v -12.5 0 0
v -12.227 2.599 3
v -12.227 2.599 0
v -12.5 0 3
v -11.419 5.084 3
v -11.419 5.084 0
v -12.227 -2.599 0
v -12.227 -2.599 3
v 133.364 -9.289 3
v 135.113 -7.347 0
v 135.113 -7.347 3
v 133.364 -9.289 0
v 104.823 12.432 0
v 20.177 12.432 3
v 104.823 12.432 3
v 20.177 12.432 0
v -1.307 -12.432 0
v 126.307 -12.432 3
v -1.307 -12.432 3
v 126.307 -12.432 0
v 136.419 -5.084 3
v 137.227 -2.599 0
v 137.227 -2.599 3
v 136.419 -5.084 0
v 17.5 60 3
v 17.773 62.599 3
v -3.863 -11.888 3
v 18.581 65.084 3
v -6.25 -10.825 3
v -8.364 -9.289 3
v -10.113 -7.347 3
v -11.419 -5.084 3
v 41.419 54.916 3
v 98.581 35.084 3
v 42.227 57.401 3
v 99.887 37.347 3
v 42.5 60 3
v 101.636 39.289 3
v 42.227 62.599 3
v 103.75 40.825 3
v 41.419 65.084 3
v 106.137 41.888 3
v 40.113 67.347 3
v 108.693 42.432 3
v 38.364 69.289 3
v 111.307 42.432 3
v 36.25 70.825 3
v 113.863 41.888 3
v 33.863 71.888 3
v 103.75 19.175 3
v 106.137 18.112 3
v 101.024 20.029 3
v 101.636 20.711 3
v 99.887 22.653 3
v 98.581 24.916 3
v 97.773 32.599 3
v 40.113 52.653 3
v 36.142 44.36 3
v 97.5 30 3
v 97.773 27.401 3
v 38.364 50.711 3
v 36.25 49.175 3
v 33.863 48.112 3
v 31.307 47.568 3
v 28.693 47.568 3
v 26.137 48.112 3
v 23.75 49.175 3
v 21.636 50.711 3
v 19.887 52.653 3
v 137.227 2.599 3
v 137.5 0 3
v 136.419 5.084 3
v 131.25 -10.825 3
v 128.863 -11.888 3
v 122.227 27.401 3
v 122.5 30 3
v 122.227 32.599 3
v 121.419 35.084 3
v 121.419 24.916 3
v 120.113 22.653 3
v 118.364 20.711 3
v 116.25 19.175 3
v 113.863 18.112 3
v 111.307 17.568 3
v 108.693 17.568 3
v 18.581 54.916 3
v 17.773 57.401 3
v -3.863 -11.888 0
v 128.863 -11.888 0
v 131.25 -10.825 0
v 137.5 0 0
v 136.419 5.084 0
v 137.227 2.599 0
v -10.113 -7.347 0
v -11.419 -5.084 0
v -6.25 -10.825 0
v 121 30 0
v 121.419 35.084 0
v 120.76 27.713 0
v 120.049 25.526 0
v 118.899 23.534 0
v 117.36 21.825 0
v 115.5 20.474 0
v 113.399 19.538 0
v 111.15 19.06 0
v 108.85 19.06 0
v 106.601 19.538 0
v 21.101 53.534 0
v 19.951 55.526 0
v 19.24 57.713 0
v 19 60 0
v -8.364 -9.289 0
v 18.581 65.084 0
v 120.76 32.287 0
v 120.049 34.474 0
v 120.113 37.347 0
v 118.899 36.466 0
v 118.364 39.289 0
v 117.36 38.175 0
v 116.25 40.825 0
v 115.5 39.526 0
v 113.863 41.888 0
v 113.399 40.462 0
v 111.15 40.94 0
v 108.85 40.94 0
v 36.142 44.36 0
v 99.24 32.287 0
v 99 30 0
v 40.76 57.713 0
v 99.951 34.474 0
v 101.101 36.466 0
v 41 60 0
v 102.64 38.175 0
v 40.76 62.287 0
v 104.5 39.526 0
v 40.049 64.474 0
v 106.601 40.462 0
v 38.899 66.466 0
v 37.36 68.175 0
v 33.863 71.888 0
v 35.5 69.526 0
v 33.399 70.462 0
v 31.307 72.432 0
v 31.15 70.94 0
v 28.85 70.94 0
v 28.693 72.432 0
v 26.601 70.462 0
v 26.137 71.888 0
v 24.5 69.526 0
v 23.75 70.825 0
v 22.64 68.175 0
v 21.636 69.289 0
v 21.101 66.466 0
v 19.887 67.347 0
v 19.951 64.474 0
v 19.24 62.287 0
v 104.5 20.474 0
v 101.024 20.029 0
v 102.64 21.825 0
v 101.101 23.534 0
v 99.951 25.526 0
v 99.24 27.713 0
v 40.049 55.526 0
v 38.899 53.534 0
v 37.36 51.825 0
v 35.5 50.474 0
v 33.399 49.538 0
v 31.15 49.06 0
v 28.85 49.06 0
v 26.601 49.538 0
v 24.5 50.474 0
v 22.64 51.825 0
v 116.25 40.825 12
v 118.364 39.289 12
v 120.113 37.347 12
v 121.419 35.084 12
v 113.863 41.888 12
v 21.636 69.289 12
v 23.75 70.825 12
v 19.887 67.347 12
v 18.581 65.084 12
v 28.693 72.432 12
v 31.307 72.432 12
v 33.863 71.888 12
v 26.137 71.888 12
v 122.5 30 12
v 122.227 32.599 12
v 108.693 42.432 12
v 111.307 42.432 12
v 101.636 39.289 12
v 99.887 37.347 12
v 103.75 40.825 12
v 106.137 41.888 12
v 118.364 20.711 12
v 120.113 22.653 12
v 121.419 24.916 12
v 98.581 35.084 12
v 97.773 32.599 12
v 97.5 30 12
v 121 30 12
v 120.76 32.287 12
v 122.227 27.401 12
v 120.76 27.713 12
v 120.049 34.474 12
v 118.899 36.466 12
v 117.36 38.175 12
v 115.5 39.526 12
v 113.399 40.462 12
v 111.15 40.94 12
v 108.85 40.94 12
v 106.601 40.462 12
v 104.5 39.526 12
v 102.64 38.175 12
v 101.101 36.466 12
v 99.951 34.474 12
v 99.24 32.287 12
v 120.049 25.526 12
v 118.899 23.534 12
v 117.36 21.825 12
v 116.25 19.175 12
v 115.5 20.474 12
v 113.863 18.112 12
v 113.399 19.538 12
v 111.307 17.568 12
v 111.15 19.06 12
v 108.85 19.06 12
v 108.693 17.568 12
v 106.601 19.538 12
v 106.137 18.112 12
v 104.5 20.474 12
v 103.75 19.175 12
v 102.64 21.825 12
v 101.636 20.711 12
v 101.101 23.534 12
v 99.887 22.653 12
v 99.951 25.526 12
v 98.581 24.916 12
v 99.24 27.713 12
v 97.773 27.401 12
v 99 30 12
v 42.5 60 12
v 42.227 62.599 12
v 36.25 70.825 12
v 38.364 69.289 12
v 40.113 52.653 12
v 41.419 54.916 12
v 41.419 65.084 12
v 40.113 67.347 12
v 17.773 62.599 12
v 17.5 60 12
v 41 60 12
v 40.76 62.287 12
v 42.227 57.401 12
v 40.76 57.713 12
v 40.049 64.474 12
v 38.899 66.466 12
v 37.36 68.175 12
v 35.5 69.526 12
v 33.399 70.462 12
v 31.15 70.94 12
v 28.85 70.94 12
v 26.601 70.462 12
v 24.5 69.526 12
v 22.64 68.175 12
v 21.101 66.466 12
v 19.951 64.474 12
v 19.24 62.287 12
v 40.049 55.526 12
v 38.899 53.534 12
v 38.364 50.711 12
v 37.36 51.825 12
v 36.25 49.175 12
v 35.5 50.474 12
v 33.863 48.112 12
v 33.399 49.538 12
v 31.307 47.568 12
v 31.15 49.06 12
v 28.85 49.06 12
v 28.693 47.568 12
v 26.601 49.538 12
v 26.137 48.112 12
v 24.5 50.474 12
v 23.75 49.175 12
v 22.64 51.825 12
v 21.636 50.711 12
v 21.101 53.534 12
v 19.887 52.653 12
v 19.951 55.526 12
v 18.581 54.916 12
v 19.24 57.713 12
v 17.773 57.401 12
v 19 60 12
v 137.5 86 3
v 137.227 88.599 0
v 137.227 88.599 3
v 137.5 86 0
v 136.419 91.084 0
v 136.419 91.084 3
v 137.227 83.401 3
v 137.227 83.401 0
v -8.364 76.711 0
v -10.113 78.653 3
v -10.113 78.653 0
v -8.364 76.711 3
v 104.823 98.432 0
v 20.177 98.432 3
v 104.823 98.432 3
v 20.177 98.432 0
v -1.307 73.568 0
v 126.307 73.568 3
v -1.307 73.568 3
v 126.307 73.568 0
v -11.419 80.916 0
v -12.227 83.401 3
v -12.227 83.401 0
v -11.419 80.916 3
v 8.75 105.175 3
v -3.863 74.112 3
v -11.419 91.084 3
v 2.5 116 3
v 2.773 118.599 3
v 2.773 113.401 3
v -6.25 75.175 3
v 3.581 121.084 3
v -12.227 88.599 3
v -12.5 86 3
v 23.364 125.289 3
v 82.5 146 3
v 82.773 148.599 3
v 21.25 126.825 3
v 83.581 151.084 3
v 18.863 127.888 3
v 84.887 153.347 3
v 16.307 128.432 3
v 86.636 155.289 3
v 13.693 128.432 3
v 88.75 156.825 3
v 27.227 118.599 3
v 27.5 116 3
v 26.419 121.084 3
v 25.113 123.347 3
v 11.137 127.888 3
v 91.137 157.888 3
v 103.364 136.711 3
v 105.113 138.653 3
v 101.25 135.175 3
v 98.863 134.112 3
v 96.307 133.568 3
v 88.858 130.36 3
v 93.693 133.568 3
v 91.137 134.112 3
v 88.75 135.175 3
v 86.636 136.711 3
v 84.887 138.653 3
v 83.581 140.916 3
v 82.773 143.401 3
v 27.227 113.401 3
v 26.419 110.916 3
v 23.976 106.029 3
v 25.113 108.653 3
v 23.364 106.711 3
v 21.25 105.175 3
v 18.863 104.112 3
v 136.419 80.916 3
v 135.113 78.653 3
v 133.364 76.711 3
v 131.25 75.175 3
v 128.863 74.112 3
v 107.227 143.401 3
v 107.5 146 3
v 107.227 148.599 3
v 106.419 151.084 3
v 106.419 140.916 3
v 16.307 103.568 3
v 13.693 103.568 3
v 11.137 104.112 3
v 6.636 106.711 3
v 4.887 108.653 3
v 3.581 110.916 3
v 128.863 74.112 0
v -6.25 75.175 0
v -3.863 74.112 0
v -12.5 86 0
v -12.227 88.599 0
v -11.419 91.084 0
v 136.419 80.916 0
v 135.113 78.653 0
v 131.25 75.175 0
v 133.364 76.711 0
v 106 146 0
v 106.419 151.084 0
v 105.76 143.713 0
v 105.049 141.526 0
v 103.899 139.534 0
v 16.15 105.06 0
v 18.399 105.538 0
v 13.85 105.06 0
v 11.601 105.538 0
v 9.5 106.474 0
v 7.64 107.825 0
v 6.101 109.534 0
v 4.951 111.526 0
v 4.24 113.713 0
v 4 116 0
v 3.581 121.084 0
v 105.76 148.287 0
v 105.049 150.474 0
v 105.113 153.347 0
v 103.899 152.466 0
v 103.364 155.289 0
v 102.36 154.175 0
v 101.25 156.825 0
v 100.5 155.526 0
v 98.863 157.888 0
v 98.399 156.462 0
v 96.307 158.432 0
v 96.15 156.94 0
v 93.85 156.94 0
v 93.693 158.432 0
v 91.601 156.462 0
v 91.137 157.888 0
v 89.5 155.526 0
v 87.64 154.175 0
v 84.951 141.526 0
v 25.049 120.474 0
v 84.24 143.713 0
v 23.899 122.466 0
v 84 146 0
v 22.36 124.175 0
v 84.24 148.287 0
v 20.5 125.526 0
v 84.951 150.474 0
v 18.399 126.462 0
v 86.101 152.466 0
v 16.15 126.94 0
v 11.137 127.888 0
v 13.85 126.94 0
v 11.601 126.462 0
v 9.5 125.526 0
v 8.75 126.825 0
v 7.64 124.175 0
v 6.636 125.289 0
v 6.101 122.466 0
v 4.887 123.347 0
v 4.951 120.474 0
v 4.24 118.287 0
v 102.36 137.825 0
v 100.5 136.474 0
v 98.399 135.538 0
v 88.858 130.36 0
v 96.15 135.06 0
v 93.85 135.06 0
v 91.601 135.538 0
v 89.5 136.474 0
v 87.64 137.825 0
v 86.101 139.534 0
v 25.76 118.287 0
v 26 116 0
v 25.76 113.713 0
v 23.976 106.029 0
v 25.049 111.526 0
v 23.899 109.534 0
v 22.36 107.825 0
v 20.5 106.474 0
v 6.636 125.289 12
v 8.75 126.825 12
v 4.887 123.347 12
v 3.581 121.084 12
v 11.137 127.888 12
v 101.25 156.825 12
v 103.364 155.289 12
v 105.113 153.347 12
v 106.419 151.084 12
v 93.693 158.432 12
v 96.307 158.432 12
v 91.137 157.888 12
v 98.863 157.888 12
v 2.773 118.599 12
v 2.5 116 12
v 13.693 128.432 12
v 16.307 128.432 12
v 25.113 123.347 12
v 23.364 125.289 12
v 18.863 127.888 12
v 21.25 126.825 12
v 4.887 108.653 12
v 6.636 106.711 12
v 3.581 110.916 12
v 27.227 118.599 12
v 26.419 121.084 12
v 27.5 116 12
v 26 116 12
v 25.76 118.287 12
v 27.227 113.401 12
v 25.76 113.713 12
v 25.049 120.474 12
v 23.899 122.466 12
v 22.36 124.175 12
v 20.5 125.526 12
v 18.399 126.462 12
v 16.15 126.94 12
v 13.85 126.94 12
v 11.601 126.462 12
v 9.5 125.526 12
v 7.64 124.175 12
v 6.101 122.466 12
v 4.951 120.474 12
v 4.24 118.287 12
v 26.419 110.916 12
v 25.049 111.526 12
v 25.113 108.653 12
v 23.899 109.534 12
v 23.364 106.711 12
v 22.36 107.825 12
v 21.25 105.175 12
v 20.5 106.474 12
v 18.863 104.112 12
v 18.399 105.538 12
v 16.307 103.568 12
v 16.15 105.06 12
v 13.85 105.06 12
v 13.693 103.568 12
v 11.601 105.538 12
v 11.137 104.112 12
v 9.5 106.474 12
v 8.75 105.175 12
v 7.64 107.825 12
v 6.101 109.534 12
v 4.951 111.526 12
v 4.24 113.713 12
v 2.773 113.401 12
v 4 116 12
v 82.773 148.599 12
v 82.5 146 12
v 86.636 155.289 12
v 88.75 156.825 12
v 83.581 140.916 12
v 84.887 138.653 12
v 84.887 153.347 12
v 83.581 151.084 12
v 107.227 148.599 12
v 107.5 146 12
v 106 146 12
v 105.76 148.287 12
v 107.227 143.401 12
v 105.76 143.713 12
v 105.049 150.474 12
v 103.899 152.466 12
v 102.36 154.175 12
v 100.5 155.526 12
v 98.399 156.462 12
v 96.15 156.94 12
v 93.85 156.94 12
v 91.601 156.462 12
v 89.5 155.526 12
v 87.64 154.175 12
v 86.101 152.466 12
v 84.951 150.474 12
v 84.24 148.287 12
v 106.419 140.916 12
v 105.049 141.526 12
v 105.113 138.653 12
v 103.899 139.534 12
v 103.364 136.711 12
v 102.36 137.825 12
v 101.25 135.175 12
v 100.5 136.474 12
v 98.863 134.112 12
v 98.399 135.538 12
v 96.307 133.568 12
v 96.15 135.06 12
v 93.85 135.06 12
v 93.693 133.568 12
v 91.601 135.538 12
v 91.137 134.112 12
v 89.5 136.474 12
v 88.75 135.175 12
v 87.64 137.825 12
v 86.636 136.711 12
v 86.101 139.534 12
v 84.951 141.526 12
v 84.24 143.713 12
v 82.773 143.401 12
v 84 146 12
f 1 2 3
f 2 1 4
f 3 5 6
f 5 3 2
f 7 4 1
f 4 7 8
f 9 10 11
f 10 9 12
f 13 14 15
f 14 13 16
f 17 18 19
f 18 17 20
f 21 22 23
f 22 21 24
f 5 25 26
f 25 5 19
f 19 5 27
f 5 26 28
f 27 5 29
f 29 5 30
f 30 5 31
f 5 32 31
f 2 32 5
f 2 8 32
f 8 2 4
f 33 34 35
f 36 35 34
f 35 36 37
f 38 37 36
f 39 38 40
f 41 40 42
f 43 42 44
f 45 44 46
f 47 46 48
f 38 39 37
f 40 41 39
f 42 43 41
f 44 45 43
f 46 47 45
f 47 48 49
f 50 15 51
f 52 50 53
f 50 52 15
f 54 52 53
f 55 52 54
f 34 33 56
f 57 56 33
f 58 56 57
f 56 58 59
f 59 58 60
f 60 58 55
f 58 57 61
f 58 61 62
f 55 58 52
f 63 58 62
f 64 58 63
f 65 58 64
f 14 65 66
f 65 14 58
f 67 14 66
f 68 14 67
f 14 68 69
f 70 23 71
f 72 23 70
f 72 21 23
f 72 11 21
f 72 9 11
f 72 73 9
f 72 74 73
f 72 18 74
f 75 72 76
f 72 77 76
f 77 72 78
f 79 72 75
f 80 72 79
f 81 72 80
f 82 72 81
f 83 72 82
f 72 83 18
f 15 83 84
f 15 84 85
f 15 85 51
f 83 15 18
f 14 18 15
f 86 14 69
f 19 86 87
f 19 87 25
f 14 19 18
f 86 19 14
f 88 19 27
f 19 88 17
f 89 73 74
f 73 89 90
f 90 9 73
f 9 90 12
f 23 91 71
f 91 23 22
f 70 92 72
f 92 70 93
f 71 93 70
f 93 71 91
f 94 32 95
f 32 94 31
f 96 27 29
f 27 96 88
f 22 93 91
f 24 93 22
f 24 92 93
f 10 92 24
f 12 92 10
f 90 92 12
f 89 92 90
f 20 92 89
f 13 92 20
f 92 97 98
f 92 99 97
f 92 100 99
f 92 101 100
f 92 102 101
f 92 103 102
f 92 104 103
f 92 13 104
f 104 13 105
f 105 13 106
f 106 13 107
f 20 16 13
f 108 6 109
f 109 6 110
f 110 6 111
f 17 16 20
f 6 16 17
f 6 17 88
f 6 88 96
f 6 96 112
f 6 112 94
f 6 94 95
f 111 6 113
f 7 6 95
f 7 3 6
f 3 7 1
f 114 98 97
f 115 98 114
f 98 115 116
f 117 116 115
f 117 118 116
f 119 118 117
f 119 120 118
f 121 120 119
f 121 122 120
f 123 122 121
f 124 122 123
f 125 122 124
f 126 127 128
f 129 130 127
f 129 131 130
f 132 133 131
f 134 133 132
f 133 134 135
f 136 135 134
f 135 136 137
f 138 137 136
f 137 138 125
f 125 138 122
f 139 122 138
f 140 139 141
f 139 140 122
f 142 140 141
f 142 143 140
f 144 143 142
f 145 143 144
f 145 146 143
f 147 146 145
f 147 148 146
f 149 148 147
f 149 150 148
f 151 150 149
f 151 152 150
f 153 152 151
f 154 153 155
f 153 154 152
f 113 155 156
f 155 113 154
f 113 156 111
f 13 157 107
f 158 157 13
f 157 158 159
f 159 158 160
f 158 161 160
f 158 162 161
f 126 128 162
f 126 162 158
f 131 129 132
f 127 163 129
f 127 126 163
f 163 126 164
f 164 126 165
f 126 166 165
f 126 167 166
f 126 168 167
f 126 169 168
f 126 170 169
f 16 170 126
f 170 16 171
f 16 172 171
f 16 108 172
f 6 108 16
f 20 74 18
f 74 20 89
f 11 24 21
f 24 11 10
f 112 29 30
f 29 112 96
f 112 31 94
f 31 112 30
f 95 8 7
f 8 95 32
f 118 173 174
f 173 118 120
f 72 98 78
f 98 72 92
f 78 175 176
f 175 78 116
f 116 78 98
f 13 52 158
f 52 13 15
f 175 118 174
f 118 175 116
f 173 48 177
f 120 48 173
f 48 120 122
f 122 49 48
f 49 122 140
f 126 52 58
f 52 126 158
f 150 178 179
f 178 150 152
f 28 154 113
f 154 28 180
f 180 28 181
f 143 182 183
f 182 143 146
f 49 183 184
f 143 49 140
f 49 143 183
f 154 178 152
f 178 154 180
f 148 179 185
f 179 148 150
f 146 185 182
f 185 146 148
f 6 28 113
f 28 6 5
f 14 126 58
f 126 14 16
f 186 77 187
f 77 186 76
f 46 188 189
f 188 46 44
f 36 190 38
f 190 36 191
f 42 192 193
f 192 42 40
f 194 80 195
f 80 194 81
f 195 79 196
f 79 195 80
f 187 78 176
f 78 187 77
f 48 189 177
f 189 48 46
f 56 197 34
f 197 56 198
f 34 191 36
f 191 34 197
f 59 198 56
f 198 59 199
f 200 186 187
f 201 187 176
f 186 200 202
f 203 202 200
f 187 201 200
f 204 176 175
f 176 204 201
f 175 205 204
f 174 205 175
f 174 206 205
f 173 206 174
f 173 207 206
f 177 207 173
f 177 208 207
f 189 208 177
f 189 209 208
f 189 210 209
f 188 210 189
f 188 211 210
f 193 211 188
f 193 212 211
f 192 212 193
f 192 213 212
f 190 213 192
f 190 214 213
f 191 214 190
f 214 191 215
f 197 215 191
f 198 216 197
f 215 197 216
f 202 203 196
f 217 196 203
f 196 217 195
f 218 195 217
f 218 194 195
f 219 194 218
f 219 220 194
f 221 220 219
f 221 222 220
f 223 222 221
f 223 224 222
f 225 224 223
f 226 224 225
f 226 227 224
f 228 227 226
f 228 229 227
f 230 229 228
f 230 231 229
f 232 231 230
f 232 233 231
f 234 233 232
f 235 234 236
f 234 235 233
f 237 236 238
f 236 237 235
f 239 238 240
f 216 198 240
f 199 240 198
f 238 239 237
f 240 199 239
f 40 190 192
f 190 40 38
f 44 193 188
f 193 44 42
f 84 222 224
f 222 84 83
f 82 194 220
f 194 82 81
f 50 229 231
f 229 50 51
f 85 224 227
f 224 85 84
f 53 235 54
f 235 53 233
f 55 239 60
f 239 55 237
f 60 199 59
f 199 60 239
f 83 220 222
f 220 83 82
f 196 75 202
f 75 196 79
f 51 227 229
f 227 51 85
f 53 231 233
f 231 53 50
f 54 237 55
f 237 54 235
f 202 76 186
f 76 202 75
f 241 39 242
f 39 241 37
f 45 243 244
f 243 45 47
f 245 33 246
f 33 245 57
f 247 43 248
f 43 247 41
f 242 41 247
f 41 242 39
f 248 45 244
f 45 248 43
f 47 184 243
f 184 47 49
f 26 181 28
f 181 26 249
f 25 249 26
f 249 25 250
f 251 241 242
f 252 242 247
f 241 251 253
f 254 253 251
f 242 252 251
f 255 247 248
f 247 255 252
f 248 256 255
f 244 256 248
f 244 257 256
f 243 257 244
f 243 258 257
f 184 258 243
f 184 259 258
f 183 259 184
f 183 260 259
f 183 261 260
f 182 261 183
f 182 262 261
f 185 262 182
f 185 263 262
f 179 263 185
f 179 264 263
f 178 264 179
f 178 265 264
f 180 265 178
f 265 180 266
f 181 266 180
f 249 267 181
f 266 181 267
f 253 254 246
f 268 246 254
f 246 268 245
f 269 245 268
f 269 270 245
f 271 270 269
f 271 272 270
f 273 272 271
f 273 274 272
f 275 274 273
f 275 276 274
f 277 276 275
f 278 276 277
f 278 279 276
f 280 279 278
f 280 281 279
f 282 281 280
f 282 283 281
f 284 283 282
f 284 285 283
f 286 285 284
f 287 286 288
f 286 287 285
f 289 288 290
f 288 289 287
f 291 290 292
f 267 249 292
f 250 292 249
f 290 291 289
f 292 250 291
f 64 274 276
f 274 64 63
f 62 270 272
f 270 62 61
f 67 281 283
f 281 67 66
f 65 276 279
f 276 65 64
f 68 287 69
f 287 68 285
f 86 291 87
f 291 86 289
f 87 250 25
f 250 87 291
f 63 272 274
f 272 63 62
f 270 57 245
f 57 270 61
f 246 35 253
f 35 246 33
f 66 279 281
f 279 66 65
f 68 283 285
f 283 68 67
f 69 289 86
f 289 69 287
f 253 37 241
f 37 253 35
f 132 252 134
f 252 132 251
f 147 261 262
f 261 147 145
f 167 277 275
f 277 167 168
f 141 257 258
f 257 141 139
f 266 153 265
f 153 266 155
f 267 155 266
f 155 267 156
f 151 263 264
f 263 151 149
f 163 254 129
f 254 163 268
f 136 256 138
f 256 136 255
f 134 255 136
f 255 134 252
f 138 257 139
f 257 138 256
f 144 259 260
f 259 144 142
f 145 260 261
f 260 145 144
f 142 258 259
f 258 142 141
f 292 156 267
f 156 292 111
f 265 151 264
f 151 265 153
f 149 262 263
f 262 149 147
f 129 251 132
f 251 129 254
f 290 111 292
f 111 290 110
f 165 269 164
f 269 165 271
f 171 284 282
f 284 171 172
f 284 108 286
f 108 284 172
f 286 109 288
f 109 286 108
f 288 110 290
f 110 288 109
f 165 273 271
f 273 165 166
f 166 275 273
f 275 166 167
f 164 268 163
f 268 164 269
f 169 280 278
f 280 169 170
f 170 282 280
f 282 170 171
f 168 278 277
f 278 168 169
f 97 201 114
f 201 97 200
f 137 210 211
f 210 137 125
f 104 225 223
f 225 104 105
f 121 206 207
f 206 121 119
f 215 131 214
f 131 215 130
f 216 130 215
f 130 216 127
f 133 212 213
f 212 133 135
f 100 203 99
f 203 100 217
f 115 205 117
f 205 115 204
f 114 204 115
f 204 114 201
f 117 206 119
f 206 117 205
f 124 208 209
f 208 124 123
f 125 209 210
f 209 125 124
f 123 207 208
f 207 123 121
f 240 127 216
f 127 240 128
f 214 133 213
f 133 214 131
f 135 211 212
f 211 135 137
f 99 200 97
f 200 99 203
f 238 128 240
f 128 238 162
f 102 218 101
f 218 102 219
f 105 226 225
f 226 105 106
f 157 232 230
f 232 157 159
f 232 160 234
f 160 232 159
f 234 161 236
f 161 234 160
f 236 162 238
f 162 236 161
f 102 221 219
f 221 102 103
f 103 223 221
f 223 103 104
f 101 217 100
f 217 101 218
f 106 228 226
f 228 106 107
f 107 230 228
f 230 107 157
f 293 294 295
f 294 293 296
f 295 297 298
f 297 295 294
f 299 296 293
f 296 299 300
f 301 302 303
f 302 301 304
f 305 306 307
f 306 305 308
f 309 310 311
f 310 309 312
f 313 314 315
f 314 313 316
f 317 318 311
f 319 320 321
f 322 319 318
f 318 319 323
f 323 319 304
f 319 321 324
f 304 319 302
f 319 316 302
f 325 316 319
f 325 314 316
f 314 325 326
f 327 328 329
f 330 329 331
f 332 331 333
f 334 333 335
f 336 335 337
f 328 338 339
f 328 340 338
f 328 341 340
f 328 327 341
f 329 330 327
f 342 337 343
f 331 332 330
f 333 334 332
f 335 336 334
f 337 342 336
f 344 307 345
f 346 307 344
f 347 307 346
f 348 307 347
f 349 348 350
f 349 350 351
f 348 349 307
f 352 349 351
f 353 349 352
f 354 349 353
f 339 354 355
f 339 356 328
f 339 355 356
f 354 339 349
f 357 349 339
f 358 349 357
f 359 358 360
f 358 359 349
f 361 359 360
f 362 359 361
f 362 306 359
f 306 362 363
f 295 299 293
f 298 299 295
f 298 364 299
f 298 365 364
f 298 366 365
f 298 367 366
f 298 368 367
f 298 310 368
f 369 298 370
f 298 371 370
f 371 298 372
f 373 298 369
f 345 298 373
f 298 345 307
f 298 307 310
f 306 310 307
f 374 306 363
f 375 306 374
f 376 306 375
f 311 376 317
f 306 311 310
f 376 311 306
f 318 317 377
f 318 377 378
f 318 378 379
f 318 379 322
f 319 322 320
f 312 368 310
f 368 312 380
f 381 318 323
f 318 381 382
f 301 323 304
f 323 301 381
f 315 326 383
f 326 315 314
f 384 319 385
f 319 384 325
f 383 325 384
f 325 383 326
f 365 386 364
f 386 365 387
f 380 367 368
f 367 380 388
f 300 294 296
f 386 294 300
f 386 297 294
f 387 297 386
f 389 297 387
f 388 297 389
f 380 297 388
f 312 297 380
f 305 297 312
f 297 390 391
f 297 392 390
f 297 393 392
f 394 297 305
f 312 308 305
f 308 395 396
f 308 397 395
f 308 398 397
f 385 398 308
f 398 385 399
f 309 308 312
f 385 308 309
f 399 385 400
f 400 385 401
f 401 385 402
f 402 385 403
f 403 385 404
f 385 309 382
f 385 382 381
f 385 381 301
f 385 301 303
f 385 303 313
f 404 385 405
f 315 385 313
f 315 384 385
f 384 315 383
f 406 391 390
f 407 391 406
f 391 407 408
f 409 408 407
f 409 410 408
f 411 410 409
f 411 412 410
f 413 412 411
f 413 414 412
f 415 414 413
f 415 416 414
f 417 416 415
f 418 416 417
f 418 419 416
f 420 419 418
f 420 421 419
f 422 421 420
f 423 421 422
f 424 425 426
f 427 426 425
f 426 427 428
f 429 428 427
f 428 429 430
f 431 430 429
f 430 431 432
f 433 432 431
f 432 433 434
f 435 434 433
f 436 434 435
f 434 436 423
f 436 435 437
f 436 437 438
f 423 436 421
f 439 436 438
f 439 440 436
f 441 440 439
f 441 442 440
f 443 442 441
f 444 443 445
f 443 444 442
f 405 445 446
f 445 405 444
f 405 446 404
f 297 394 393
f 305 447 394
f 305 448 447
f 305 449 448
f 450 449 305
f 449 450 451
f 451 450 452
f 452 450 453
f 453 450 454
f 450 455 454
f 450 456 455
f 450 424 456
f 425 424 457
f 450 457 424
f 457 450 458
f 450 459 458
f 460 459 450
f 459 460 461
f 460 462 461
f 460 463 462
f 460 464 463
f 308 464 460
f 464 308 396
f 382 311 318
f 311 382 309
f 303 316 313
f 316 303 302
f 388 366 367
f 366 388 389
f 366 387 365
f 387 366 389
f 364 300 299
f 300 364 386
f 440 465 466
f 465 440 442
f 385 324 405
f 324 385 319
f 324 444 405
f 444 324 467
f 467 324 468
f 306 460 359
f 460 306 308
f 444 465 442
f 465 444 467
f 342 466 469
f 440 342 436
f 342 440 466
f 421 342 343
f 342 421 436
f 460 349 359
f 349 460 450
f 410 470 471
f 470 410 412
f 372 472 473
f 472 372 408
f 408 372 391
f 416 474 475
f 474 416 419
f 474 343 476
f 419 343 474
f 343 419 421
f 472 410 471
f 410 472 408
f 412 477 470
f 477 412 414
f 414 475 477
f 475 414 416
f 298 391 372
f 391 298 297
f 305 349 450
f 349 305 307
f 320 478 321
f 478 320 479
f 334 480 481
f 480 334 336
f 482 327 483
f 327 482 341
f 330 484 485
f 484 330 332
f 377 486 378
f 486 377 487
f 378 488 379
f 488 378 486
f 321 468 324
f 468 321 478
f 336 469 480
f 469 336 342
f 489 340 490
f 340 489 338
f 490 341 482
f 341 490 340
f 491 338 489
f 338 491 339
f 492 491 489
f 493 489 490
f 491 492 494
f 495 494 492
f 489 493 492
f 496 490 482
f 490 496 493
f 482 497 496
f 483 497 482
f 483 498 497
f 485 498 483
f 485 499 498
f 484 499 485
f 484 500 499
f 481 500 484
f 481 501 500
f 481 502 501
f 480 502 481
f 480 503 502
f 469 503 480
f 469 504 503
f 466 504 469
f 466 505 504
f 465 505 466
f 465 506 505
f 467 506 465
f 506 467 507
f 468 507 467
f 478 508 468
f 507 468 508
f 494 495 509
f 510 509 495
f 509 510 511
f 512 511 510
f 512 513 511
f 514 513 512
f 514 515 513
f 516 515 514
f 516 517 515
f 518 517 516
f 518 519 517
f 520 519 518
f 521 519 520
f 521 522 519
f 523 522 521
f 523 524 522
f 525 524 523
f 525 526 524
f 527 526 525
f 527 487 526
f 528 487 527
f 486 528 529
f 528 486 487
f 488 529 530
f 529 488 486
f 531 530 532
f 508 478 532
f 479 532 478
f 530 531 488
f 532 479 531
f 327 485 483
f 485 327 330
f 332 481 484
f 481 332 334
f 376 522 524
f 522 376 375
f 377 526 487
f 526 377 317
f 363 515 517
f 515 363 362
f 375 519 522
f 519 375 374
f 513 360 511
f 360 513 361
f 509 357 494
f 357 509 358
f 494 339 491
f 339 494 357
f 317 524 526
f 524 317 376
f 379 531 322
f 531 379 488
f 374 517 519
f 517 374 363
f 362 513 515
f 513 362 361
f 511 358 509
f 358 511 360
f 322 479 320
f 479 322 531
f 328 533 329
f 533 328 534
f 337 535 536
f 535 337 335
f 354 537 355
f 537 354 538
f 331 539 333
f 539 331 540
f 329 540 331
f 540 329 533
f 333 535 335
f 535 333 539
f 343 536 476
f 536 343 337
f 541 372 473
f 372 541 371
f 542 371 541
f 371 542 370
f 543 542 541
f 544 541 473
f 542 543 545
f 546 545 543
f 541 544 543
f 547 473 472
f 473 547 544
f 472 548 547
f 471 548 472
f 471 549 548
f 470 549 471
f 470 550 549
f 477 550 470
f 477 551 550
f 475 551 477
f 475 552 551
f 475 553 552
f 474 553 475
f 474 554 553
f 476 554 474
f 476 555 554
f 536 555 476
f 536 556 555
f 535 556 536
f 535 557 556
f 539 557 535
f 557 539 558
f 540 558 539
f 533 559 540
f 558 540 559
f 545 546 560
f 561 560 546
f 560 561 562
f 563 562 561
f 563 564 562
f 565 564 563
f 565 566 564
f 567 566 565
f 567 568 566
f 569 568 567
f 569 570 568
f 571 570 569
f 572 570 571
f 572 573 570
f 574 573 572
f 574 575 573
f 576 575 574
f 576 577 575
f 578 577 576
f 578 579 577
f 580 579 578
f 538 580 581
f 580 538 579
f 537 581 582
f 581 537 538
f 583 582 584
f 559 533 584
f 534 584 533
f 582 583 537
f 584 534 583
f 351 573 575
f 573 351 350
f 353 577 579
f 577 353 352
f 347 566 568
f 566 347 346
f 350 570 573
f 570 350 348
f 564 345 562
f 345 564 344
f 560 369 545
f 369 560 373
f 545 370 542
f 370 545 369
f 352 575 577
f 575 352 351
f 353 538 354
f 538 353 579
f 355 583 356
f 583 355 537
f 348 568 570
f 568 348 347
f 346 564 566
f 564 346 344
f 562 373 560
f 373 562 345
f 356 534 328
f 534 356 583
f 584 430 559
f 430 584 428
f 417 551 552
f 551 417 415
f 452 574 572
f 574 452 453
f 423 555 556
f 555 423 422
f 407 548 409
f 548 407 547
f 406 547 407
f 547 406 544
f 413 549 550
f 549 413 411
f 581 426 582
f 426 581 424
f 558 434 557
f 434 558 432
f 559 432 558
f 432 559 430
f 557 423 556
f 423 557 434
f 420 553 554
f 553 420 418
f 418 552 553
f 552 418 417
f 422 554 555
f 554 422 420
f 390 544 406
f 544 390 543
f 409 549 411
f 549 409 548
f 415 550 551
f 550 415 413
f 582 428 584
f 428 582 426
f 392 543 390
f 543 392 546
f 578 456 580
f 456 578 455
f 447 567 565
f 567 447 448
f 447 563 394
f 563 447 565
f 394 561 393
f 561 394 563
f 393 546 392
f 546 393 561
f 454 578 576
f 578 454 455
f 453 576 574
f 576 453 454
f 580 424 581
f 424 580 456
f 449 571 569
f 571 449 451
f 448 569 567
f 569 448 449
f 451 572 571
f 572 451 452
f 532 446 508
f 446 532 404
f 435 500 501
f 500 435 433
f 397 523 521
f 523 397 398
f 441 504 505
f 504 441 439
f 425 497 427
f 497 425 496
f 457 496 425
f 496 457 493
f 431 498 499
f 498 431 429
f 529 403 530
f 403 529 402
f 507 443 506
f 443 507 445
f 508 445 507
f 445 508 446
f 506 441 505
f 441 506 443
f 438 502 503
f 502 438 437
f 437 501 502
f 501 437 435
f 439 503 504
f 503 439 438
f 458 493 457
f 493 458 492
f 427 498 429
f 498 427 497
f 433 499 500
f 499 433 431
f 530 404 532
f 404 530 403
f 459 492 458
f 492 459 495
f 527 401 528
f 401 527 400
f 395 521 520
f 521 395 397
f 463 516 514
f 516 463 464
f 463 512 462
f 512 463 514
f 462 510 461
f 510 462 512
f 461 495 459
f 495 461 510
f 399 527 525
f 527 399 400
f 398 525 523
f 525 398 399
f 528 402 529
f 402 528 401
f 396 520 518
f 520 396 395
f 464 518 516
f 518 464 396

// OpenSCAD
// Wire Spool Brackets
// Adrian McCarthy

// Turn a Sterilite 6-quart storage bin into a dispenser for spools of
// hookup wire.  This file creates two brackets that fit into the ends
// of the storage box and holds a pair of 1/2-inch schedule 40 PVC pipe
// to act as the axes for the spools.

// 1.  Print these brackets.
// 2.  Cut 2 lengths of 1/2-inch schedule 40 PVC pipe to approximately
//     11.25 inches.
// 3.  Put your smaller spools on one pipe and your larger ones on the
//     other, then cap the pipes with the spool brackets.  The flat
//     sides of the bracket should face the spools.  The pipe with the
//     smaller spools should be in the lower position.
// 4.  Place the assembly in your Sterilite 6-quart storage bin.
// 5.  Drill (or melt) holes in the storage container to feed the wires
//     out.  Label the holes with the wire type and gauge.

id=22;  // a 22 mm diameter hole fits around 1/2" schedule 40 PVC pipe
od=25;

// Hookup wire spools seem to come in two sizes.  Both have holes of 1",
// which easily fits over the 1/2-inch pipe.  Larger spools have a
// diameter of 2 7/8" and the smaller ones, 2 3/16".

large_d = 73;
small_d = 56;

// The spool diameters and the inner dimensions of the storage bin
// dictate these positions:
back = [0, 0, 0];
front = [125, 0, 0];
lower = [110, 30, 0];
upper = [30, 60, 0];

// The brackets are made from craft-stick shapes we'll call struts.
module strut(p0, p1, d, h=3) {
    hull() {
        translate(p0) cylinder(d=d, h=h);
        translate(p1) cylinder(d=d, h=h);
    }
}

module spool_bracket() {
    difference() {
        union() {
            strut(back,  front, od);
            strut(front, lower, od);
            strut(lower, upper, od);
            strut(upper, back,  od);
            translate(lower) cylinder(d=od, h=12);
            translate(upper) cylinder(d=od, h=12);
        }
        translate([upper[0], upper[1], -1]) cylinder(d=id, h=14);
        translate([lower[0], lower[1], -1]) cylinder(d=id, h=14);
    }
}

// It takes two brackets that are mirror images of each other.
spool_bracket();
translate([125, 86, 0]) mirror([1,0,0]) spool_bracket();
